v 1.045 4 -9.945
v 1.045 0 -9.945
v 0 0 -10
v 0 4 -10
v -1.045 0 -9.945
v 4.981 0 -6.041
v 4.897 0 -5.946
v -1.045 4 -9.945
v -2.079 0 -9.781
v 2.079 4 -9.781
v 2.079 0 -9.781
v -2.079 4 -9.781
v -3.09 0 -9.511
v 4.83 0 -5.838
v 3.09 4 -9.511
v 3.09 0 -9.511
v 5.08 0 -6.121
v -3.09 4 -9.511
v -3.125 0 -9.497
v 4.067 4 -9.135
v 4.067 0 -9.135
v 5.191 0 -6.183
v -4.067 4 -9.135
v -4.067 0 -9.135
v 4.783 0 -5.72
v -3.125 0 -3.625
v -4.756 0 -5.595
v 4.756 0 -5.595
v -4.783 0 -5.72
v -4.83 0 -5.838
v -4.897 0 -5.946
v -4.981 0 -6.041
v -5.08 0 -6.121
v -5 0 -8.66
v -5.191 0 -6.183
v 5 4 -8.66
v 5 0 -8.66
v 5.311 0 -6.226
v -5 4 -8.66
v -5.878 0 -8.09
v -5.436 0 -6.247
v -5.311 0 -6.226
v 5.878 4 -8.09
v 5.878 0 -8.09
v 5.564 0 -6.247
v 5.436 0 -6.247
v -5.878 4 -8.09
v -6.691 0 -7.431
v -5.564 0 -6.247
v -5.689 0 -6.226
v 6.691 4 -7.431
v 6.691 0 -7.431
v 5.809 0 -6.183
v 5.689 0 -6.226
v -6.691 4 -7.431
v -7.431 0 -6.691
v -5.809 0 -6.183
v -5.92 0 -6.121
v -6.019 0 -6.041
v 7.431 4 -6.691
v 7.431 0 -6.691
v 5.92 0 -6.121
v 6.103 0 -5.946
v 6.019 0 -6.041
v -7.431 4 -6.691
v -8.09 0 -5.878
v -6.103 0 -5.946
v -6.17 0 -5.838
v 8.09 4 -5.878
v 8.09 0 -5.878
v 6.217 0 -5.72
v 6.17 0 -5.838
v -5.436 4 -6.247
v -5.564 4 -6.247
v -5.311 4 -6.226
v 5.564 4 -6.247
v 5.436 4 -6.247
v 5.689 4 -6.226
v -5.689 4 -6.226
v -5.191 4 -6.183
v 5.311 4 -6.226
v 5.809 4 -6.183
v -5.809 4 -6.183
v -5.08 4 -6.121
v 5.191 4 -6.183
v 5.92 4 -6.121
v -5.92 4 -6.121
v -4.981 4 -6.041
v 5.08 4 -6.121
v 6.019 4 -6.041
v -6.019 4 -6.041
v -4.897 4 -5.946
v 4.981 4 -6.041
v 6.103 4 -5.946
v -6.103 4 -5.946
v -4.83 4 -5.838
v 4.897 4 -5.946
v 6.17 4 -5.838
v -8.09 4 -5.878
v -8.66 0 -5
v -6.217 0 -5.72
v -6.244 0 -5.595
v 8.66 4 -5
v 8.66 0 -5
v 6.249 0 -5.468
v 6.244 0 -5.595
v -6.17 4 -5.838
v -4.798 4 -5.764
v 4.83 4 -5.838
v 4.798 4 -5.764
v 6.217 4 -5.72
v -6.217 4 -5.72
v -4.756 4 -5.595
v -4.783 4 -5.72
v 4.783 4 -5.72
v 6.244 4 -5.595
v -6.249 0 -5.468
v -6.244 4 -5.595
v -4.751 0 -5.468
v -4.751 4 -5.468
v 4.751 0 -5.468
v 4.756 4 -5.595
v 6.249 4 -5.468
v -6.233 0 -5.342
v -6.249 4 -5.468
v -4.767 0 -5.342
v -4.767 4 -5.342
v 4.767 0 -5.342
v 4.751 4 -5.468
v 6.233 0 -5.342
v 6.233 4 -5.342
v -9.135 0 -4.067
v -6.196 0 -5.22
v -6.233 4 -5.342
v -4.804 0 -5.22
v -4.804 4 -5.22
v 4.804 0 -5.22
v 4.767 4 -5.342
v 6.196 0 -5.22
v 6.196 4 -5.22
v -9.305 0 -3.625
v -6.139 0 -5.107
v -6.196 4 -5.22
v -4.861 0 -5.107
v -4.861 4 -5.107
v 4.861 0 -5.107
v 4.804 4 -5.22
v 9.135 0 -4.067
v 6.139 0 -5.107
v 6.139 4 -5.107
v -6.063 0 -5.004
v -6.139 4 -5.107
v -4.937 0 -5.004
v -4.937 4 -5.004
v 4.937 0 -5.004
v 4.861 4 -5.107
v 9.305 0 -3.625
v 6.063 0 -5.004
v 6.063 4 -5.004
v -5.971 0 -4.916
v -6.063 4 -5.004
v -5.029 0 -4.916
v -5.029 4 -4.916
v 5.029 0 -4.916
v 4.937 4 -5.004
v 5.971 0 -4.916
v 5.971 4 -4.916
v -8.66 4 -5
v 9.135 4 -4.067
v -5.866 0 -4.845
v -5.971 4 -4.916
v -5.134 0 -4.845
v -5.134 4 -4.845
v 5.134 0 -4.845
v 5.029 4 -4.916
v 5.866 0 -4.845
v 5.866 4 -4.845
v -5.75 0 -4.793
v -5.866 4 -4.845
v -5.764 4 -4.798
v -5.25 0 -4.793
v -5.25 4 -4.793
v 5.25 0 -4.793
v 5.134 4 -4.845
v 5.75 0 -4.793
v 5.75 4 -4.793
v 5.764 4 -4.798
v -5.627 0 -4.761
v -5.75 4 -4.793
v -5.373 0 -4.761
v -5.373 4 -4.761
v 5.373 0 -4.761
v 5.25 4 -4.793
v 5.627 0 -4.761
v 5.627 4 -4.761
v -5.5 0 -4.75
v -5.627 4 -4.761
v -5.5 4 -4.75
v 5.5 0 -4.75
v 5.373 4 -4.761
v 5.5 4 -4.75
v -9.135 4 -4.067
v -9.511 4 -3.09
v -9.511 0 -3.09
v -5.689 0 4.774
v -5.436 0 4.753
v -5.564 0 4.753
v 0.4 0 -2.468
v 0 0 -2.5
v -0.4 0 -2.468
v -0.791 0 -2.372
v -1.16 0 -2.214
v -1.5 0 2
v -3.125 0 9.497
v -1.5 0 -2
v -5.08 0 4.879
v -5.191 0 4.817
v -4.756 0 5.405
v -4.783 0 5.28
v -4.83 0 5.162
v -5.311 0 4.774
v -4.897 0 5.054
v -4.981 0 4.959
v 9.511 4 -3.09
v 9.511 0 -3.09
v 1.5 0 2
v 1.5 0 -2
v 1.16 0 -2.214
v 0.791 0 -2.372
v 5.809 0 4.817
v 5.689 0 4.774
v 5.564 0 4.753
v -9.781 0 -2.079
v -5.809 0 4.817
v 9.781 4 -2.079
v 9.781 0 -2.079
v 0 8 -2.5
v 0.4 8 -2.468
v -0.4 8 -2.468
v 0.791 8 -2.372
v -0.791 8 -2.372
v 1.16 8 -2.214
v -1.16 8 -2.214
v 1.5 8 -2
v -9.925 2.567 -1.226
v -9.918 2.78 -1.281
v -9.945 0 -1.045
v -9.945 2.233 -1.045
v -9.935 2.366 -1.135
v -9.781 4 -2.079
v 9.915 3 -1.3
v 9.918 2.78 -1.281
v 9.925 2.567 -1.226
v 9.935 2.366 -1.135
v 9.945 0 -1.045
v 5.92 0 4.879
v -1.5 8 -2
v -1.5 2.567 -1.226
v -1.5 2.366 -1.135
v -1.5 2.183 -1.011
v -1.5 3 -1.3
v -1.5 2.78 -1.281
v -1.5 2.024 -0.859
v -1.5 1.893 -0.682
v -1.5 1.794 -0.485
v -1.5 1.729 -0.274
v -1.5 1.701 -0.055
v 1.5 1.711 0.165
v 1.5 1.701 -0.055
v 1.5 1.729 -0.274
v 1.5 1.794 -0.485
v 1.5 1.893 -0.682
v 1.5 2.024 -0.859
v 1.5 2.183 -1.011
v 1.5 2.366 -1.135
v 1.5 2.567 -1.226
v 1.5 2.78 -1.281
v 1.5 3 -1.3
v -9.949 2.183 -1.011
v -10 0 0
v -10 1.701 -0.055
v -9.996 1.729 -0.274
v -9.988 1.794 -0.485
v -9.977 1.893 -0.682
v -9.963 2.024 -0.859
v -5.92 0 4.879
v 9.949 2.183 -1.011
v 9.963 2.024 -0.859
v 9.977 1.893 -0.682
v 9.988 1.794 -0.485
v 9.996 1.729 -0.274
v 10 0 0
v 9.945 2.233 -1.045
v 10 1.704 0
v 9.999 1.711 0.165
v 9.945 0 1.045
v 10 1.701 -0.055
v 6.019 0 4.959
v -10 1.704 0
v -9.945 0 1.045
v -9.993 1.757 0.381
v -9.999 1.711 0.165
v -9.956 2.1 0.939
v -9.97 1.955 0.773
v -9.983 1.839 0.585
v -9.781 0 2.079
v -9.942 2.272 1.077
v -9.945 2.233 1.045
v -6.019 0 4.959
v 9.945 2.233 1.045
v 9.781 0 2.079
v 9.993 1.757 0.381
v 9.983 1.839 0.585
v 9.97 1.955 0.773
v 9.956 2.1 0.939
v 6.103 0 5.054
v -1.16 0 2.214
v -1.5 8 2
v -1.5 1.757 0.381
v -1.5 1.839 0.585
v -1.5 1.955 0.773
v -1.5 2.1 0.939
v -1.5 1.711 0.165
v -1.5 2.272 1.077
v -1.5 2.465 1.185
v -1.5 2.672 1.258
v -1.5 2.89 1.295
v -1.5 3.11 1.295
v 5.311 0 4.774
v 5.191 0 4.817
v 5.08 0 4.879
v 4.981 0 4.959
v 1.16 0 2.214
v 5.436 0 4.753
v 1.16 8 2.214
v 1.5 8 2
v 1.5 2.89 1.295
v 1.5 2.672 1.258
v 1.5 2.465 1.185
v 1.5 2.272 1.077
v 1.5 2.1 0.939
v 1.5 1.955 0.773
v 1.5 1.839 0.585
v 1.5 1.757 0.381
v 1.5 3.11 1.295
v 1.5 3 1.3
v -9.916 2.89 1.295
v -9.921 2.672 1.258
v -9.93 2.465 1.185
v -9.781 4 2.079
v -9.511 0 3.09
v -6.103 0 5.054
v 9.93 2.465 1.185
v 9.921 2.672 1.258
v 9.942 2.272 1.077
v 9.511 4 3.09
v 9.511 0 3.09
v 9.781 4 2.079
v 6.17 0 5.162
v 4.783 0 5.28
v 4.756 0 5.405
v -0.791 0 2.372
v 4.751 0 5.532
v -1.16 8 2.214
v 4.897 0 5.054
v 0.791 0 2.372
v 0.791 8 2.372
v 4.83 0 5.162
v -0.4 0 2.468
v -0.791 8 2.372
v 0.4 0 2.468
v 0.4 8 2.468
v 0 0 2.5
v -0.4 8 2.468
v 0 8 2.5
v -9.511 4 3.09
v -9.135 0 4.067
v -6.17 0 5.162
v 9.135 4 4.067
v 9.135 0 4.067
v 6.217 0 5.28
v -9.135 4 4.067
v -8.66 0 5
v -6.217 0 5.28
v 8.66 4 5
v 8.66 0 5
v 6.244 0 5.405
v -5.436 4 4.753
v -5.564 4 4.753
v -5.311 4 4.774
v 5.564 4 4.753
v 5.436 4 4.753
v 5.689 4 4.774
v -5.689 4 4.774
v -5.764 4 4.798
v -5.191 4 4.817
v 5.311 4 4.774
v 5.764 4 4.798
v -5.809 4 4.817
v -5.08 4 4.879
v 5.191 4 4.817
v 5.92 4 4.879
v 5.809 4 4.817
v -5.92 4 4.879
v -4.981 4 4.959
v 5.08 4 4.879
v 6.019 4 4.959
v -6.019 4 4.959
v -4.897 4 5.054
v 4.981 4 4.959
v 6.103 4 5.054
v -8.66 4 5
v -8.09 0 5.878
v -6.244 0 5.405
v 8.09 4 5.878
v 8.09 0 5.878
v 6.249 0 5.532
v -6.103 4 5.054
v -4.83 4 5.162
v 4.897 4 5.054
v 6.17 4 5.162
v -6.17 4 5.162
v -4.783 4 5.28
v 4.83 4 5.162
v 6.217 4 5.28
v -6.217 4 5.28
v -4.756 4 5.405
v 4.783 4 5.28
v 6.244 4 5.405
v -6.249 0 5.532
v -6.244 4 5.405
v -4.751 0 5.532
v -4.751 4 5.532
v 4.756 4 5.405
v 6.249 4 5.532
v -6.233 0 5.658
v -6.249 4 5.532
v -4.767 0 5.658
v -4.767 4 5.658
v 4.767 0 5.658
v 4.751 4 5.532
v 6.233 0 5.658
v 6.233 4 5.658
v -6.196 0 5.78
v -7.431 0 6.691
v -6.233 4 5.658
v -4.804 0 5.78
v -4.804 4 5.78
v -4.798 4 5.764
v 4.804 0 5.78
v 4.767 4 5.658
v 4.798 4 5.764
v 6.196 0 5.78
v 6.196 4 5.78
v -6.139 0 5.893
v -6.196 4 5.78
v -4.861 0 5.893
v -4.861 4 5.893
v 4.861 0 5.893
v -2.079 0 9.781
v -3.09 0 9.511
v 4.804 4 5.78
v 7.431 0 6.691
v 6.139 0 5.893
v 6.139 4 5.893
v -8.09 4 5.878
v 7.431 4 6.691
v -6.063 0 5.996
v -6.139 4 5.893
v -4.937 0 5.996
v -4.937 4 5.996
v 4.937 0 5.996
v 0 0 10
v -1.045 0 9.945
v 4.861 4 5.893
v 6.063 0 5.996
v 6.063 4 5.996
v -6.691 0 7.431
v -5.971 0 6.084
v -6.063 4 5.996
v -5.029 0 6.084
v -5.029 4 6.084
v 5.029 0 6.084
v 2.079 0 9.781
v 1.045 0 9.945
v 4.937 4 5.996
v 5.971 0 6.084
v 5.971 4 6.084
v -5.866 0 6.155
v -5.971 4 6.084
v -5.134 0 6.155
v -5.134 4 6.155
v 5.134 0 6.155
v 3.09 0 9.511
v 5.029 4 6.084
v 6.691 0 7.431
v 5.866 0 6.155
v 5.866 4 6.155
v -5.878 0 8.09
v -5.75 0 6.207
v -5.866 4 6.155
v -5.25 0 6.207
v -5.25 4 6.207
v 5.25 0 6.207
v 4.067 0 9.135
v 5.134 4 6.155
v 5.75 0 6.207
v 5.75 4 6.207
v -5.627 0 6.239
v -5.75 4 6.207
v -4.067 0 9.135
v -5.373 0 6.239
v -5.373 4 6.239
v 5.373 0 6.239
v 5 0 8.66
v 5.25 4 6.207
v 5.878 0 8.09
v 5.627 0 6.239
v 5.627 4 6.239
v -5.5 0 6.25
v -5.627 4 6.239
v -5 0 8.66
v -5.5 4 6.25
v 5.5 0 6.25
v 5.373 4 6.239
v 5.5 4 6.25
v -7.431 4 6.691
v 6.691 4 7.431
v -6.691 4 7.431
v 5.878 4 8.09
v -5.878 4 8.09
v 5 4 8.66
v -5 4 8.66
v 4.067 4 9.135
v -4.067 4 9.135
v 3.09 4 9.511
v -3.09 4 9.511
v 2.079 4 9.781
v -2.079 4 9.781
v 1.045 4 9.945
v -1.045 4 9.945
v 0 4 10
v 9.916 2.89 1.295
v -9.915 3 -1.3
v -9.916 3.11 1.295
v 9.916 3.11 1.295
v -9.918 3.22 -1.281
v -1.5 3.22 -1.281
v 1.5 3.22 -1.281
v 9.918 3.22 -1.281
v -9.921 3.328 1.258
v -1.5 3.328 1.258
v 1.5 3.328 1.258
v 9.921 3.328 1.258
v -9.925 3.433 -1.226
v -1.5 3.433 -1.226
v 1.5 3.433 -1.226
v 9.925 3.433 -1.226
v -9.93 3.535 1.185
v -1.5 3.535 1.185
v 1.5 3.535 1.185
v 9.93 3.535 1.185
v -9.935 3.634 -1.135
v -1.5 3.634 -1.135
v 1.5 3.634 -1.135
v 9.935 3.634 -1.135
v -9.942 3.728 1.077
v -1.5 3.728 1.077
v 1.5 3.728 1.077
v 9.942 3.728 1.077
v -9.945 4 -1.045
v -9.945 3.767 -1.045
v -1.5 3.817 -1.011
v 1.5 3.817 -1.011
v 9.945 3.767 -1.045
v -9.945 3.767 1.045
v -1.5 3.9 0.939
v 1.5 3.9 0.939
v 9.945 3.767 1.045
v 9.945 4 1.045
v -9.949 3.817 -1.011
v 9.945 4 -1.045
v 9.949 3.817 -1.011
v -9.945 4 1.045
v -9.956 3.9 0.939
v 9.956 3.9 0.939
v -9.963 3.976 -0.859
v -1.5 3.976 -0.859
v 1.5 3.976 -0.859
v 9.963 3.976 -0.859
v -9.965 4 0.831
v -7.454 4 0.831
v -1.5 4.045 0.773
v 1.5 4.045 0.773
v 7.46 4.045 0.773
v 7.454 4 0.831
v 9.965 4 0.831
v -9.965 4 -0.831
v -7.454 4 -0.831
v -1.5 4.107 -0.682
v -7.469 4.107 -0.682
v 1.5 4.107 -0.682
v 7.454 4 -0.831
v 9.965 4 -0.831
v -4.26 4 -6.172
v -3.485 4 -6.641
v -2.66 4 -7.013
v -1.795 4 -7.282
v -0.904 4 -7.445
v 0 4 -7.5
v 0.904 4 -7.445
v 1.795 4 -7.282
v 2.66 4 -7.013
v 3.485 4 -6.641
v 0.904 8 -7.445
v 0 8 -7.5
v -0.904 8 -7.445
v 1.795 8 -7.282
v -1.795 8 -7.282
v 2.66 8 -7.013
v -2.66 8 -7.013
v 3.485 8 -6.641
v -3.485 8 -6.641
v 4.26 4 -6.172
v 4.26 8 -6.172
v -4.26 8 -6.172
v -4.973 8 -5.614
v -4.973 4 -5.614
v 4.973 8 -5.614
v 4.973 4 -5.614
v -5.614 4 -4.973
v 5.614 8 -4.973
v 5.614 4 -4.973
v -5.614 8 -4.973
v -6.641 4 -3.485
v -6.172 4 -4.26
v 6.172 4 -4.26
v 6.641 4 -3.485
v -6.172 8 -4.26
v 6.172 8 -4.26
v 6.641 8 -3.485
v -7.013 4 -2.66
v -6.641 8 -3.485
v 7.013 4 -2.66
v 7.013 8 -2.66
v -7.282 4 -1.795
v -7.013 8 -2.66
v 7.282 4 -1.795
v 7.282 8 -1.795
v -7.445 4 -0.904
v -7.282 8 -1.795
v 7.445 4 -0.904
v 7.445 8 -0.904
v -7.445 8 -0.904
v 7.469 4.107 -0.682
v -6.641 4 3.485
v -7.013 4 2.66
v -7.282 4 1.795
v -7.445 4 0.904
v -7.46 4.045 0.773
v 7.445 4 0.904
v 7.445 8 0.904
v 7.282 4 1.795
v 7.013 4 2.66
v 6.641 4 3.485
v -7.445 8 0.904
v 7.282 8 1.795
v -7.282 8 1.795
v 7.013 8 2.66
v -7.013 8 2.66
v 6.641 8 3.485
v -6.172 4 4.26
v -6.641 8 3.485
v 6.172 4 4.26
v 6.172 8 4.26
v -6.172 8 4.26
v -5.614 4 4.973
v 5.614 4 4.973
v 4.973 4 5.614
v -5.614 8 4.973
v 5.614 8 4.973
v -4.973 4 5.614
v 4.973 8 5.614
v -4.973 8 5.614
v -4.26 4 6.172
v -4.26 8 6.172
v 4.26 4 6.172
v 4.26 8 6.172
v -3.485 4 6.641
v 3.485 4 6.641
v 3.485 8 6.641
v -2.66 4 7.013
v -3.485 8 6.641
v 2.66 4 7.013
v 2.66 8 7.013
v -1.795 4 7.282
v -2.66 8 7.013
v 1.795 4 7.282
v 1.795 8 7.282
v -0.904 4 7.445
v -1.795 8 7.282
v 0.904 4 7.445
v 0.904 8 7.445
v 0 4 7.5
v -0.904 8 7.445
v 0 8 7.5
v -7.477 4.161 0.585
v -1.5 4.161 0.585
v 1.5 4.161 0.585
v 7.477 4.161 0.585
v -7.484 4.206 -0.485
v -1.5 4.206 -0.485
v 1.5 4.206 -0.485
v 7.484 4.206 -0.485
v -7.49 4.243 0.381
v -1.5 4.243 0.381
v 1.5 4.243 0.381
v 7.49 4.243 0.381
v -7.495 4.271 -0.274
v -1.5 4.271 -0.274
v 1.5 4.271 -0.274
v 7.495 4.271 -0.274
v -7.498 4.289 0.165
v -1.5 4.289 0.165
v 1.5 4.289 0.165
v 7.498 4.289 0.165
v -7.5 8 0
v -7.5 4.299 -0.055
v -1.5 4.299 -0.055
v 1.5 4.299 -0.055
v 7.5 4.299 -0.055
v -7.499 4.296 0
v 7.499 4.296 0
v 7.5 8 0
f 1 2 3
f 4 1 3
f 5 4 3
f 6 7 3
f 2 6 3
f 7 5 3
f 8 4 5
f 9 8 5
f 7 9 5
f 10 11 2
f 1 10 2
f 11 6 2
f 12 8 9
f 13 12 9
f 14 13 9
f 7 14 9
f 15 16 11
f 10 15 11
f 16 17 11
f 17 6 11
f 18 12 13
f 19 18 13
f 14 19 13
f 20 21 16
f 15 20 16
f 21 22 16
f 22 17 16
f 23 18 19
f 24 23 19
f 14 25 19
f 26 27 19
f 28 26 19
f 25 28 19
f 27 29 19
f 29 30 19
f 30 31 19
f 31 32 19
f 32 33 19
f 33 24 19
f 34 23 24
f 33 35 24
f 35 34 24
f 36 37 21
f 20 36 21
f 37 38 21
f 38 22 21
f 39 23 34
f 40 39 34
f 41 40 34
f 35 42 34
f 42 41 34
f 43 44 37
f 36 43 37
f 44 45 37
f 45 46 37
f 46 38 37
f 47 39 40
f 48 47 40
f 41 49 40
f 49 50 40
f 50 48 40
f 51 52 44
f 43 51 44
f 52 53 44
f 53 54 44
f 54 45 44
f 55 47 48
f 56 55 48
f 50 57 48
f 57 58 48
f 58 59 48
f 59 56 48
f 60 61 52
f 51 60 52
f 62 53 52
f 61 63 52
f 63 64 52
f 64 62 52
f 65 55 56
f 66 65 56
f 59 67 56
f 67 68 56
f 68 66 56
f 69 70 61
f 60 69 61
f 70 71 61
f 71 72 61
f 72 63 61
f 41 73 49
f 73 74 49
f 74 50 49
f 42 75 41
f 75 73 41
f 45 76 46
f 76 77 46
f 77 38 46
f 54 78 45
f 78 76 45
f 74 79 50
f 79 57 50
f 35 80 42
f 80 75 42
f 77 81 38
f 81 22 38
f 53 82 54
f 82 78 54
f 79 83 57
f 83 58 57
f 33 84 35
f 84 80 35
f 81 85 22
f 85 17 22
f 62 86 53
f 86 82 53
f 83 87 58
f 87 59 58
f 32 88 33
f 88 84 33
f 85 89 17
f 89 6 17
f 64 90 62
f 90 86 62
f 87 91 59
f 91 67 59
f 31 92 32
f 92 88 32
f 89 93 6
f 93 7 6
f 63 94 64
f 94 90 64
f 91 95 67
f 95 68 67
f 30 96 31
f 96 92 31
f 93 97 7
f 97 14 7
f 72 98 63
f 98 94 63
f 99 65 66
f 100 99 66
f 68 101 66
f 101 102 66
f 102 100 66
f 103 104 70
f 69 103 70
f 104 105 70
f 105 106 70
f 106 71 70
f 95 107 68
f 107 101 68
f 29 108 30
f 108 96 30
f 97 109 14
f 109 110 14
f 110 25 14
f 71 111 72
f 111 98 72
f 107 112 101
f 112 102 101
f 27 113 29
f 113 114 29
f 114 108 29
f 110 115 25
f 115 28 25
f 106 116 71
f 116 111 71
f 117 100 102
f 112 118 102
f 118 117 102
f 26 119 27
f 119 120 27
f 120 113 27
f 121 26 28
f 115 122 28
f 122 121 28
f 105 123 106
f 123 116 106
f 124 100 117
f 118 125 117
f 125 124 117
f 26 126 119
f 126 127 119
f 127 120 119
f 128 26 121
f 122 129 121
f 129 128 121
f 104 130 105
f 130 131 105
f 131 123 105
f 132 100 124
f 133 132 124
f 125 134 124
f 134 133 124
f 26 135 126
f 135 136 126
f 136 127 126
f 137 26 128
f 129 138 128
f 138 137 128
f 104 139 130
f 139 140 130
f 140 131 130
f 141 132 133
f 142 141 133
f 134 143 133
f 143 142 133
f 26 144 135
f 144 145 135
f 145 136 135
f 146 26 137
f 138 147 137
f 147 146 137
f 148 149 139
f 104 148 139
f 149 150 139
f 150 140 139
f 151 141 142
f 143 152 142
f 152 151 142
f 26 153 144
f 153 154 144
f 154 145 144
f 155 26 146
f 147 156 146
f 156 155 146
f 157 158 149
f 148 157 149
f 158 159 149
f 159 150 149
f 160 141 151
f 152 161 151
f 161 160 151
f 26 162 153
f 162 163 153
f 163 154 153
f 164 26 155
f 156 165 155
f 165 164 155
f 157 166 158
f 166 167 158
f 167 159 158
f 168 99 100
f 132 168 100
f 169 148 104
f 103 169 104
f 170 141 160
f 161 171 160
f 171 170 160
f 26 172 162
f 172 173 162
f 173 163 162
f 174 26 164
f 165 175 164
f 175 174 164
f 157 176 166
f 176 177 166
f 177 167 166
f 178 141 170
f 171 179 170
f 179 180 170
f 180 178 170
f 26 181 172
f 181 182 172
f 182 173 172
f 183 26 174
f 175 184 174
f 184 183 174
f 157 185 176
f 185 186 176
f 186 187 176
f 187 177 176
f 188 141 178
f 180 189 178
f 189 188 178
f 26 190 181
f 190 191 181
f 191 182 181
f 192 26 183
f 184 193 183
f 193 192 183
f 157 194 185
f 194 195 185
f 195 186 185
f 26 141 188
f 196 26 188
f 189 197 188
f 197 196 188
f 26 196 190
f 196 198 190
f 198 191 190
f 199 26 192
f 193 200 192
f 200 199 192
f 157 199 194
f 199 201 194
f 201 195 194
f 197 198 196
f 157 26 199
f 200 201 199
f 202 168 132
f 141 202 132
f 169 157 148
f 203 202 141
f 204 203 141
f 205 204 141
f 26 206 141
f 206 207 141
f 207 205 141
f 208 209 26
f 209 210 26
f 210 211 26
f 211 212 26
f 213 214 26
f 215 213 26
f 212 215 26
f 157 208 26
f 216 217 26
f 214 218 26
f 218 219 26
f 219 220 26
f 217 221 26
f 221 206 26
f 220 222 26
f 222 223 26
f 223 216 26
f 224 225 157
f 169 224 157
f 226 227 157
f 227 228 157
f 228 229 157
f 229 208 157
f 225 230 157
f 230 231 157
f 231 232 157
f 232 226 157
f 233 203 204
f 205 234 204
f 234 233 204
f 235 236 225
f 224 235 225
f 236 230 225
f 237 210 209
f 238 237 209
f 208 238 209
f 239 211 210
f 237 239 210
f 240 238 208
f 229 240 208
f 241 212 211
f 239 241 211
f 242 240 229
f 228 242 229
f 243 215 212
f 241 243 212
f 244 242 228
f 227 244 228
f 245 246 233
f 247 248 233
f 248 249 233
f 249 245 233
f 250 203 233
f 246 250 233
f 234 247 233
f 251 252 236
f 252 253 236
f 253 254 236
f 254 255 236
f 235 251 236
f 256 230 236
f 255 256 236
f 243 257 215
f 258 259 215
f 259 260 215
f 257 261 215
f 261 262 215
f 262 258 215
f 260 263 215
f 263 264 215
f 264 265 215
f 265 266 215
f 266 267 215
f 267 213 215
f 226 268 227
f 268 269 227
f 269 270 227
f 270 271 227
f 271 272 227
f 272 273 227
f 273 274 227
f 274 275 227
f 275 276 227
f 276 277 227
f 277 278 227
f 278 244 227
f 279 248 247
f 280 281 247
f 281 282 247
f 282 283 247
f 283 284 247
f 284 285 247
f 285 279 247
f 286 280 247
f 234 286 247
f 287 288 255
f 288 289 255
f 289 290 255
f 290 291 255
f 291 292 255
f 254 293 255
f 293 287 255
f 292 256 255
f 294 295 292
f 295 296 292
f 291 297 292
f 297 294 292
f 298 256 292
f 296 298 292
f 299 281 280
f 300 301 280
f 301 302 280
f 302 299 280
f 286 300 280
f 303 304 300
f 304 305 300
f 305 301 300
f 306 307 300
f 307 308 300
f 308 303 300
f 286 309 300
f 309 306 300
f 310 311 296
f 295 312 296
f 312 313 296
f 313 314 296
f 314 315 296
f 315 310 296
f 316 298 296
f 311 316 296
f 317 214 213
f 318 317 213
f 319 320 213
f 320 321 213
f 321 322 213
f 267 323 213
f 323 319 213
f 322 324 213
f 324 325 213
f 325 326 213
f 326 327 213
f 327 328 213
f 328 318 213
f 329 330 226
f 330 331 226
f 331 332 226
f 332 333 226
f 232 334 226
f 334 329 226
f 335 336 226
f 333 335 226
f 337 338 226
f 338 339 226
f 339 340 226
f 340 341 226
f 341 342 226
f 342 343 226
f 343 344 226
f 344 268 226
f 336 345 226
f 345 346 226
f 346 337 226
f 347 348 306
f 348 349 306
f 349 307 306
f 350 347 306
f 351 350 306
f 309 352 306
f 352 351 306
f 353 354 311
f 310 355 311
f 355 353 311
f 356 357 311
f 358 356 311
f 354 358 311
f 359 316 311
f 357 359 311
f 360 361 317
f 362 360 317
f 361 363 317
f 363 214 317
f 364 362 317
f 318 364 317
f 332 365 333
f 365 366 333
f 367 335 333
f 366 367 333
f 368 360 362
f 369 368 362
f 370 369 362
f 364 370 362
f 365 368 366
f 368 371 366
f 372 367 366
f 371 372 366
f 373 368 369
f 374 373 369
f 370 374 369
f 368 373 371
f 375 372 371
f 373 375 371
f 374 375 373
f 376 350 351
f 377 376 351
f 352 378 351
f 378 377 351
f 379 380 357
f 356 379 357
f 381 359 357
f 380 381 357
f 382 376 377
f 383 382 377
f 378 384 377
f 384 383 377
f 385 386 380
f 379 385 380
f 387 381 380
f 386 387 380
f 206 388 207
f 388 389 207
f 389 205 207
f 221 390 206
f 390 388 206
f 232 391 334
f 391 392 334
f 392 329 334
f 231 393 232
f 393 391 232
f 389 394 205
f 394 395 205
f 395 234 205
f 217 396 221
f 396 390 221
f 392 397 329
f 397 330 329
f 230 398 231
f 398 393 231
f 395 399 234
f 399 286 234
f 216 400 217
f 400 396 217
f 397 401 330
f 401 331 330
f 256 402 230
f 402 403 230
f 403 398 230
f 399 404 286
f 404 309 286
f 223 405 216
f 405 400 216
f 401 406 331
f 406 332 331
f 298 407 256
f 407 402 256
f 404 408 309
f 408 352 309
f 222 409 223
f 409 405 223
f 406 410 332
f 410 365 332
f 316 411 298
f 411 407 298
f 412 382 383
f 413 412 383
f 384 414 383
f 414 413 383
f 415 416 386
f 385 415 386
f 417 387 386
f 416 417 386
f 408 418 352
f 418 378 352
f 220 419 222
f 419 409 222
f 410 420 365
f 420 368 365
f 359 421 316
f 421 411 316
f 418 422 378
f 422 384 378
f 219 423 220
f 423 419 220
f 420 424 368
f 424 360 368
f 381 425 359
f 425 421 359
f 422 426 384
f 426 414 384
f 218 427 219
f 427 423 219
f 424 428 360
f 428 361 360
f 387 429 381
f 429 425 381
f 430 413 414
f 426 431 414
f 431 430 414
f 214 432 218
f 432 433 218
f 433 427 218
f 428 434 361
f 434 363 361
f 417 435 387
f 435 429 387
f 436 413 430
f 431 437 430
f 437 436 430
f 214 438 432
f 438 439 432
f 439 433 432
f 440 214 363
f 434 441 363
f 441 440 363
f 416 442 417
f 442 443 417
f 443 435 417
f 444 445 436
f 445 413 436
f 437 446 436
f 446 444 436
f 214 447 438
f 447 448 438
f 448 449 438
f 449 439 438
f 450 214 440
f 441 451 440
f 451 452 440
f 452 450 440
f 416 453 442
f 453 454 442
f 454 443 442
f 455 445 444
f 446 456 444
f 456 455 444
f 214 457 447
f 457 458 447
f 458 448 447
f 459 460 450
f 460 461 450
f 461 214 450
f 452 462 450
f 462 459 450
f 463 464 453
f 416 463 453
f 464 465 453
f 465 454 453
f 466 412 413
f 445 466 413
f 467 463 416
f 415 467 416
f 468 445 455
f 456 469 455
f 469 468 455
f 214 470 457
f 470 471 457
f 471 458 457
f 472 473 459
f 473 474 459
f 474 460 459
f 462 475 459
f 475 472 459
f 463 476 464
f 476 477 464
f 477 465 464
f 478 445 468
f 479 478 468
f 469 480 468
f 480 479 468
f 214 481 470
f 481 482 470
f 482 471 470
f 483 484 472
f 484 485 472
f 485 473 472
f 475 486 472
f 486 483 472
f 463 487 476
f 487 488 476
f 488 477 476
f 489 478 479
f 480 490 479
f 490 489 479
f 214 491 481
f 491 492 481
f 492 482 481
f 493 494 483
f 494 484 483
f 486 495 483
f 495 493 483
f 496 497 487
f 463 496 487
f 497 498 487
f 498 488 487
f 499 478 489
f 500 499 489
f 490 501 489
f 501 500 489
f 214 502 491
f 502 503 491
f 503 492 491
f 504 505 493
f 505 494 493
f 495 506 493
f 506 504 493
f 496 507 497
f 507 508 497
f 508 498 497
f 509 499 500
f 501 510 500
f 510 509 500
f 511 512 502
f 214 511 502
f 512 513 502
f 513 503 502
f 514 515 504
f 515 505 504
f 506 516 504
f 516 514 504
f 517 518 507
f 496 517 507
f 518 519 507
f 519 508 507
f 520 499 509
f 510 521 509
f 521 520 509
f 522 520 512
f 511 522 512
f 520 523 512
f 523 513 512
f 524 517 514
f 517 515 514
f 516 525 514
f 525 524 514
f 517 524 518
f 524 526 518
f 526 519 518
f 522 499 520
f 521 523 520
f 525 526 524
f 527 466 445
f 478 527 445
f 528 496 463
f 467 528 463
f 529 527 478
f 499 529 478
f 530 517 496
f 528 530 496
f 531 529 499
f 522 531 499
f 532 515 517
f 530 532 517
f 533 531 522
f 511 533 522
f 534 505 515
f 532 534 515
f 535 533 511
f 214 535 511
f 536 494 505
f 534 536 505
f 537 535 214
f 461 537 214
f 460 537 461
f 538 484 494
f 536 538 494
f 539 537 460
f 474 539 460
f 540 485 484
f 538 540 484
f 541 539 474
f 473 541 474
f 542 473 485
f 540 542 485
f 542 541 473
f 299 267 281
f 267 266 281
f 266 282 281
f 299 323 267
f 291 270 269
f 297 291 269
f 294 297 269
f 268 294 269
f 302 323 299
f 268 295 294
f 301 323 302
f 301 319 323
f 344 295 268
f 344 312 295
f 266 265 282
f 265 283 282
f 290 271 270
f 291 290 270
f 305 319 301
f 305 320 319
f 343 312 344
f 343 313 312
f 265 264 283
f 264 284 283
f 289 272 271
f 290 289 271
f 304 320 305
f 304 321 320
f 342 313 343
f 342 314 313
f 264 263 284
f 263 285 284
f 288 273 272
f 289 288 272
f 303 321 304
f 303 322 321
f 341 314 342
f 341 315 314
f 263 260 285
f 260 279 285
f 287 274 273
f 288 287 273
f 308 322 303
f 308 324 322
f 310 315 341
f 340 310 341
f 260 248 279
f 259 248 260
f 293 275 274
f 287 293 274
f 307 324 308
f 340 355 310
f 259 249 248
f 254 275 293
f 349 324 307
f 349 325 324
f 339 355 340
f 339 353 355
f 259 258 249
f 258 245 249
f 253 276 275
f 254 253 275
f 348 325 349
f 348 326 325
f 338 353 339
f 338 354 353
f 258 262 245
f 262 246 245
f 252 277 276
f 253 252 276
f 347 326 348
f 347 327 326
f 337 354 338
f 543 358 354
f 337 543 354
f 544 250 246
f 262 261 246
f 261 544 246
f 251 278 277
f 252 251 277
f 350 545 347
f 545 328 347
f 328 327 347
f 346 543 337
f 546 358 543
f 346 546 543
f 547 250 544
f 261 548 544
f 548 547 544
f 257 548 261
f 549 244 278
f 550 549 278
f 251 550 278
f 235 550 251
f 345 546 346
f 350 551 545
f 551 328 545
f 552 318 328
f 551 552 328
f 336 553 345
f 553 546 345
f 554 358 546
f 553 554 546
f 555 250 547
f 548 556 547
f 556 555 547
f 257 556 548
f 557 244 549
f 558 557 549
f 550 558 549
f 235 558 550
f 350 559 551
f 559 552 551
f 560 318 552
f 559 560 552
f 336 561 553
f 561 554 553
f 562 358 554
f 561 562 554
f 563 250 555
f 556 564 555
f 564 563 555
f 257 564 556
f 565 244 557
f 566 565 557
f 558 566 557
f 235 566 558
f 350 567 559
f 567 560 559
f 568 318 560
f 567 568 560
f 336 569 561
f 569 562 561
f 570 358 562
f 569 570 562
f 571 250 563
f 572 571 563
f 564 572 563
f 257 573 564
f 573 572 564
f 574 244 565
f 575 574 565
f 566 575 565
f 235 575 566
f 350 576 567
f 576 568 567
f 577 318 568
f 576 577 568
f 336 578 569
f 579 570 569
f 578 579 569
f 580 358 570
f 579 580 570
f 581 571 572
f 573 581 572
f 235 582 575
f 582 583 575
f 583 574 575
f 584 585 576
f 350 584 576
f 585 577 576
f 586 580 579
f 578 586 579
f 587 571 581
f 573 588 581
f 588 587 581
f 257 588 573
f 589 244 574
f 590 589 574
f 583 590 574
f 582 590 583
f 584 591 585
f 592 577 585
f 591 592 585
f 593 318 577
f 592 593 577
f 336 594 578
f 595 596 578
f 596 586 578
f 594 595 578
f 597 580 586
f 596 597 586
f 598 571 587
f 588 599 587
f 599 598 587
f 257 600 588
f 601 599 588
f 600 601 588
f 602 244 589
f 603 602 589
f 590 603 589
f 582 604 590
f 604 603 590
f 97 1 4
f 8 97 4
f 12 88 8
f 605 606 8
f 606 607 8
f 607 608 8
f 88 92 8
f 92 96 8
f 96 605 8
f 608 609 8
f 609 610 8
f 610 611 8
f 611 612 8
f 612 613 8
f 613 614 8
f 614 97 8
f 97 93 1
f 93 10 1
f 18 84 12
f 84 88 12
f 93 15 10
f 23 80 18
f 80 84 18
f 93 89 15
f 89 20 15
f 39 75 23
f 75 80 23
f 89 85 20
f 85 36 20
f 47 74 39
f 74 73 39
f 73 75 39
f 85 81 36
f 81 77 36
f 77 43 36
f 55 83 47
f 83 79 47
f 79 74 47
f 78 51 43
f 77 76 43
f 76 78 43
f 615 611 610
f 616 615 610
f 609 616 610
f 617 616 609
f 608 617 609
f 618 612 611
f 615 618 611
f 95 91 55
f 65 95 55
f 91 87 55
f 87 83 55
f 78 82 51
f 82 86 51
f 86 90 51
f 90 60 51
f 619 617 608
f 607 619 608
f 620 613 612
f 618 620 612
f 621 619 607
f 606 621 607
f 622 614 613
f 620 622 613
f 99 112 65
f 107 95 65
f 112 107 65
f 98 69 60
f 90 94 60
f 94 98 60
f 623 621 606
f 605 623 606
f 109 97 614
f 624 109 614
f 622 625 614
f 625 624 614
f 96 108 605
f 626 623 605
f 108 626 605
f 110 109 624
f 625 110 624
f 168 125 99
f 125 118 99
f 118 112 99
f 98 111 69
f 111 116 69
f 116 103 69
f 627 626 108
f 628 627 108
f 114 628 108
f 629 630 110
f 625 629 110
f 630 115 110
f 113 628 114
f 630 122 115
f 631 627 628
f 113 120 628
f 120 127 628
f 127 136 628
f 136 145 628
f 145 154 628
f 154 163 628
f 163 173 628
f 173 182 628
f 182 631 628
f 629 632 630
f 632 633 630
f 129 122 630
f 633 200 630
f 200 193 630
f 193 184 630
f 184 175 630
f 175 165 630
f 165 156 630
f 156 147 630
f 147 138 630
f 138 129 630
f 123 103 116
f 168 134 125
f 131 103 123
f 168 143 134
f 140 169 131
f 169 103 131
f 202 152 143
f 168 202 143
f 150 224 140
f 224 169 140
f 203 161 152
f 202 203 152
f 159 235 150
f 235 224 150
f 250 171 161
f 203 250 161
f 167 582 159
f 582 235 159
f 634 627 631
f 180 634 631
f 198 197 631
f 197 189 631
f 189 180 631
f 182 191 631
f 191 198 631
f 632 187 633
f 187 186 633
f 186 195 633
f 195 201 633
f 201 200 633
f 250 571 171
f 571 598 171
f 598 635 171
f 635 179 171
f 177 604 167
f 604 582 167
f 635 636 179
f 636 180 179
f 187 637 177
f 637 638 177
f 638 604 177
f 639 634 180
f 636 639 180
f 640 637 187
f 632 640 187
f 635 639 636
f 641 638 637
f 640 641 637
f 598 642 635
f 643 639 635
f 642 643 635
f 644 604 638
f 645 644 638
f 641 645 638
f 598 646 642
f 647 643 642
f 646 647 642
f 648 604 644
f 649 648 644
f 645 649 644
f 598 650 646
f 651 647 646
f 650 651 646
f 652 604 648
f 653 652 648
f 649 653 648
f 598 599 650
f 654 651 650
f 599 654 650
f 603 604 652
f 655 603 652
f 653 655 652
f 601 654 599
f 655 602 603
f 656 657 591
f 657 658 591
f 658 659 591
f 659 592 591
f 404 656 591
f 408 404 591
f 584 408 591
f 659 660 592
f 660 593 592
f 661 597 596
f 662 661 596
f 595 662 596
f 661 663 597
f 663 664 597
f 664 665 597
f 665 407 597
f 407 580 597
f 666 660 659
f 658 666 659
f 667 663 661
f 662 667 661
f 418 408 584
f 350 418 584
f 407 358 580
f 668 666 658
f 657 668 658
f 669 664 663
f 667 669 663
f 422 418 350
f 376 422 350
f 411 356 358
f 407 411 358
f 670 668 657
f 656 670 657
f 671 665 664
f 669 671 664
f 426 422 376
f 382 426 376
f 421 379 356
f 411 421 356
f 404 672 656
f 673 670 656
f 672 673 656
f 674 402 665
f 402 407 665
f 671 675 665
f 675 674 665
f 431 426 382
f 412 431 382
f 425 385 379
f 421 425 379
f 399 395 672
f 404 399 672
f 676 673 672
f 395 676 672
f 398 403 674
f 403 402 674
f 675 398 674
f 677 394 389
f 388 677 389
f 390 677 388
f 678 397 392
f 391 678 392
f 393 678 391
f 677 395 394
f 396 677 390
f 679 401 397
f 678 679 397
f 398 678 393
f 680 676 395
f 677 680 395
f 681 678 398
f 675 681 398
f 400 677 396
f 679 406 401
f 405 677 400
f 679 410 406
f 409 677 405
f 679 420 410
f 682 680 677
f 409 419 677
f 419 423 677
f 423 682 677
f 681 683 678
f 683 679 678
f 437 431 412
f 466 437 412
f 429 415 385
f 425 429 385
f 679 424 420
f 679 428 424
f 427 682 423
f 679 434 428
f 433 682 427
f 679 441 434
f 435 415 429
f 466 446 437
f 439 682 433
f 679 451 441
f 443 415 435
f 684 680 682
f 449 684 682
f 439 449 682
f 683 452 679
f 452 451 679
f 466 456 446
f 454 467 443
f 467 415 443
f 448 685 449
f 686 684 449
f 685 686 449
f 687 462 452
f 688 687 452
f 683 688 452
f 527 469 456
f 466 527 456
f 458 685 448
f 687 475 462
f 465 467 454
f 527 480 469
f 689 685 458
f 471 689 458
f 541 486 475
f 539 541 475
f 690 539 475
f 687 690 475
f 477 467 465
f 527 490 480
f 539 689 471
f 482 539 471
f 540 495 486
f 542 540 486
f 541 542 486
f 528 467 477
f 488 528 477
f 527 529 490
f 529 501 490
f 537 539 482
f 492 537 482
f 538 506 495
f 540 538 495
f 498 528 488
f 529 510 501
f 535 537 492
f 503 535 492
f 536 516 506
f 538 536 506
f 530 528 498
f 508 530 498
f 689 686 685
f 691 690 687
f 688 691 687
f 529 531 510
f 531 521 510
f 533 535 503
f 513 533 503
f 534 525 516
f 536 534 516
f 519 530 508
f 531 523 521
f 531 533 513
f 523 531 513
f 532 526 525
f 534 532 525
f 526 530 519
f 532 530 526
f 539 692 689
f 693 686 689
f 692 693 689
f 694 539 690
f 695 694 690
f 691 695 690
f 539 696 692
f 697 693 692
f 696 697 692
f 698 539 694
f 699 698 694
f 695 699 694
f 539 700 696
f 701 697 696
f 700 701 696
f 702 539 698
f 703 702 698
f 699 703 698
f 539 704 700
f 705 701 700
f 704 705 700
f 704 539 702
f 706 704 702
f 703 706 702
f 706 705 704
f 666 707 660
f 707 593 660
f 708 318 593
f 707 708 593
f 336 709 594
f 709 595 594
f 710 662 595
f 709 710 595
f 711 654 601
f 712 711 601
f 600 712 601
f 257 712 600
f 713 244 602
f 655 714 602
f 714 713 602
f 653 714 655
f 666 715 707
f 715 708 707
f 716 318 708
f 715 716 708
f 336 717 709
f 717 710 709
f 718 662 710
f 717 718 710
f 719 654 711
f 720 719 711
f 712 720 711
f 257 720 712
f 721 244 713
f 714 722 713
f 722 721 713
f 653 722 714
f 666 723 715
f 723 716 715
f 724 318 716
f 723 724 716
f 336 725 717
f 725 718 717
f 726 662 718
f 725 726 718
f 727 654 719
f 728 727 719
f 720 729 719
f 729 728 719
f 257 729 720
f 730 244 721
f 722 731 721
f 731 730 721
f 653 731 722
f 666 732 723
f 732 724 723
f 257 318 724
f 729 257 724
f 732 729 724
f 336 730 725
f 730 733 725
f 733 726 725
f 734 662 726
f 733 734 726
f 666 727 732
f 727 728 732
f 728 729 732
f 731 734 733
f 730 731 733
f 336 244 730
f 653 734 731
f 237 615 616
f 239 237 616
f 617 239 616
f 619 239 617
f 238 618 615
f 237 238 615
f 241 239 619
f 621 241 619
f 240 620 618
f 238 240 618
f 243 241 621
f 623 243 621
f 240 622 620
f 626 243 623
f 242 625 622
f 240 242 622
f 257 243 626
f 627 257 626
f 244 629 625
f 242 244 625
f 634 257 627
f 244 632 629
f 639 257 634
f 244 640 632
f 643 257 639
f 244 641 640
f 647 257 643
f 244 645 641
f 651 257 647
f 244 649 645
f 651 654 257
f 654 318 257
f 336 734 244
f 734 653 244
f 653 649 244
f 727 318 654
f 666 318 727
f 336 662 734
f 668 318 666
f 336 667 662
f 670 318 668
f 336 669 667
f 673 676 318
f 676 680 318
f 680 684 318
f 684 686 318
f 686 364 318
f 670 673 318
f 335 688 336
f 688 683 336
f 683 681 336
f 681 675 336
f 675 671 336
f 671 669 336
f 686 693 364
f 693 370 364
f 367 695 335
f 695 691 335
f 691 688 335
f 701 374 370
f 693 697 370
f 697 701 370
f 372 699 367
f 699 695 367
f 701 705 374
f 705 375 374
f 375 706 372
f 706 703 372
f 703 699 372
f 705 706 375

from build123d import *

# Parameters (mm, degrees)
SKETCH_1_R               = 10
EXTRUDE_1_DEPTH          = 8
CUT_EXTRUDE_START        = -4
SKETCH_2_R               = 10
SKETCH_2_R_2             = 7.5
CUT_EXTRUDE_1_DEPTH      = 4
CUT_EXTRUDE_2_DEPTH      = 18.211914478
CUT_EXTRUDE_2_DEPTH_BACK = 18.211914478
SKETCH_3_R               = 1.3
SKETCH_4_R               = 0.75
CUT_EXTRUDE_3_DEPTH      = 4


with BuildPart() as part:
    # 草图1 → 凸台-拉伸1 (new body)
    with BuildSketch(Plane(origin=(0, 0, 0), x_dir=(1, 0, 0), z_dir=(0, 1, 0))):
        with Locations(Location((0, 0, 0), (0, 0, 270))):
            Circle(SKETCH_1_R)
        with BuildLine():
            Line((-1.5, 2), (-1.5, -2))
            ThreePointArc((-1.5, -2), (0, -2.5), (1.5, -2))
            Line((1.5, -2), (1.5, 2))
            ThreePointArc((1.5, 2), (0, 2.5), (-1.5, 2))
        make_face(mode=Mode.SUBTRACT)
    extrude(amount=EXTRUDE_1_DEPTH)

    # 草图2 → 切除-拉伸1 (cut)
    with BuildSketch(Plane(origin=(0, 8, 0), x_dir=(1, 0, 0), z_dir=(0, 1, 0)).offset(CUT_EXTRUDE_START)):
        with Locations(Location((0, 0, 0), (0, 0, 270))):
            Circle(SKETCH_2_R)
        with Locations(Location((0, 0, 0), (0, 0, 270))):
            Circle(SKETCH_2_R_2, mode=Mode.SUBTRACT)
    extrude(amount=CUT_EXTRUDE_1_DEPTH, mode=Mode.SUBTRACT)

    # 草图3 → 切除-拉伸2 (cut, two sides: drawn at the far end of the back side and taken through both)
    with BuildSketch(Plane(origin=(-1.5, 0, 0), x_dir=(0, 0, -1), z_dir=(1, 0, 0)).offset(-CUT_EXTRUDE_2_DEPTH_BACK)):
        with Locations(Location((0, 3, 0), (0, 0, 309.715229307))):
            Circle(SKETCH_3_R)
    extrude(amount=CUT_EXTRUDE_2_DEPTH + CUT_EXTRUDE_2_DEPTH_BACK, mode=Mode.SUBTRACT)

    # 草图4 → 切除-拉伸3 (cut)
    with BuildSketch(Plane(origin=(0, 4, 0), x_dir=(1, 0, 0), z_dir=(0, 1, 0))):
        with Locations(Location((-5.5, 5.5, 0), (0, 0, 270))):
            Circle(SKETCH_4_R)
        with Locations(Location((5.5, 5.5, 0), (0, 0, 270))):
            Circle(SKETCH_4_R)
        with Locations(Location((-5.5, -5.5, 0), (0, 0, 270))):
            Circle(SKETCH_4_R)
        with Locations(Location((5.5, -5.5, 0), (0, 0, 270))):
            Circle(SKETCH_4_R)
    extrude(amount=-CUT_EXTRUDE_3_DEPTH, mode=Mode.SUBTRACT)


solid = part.part
